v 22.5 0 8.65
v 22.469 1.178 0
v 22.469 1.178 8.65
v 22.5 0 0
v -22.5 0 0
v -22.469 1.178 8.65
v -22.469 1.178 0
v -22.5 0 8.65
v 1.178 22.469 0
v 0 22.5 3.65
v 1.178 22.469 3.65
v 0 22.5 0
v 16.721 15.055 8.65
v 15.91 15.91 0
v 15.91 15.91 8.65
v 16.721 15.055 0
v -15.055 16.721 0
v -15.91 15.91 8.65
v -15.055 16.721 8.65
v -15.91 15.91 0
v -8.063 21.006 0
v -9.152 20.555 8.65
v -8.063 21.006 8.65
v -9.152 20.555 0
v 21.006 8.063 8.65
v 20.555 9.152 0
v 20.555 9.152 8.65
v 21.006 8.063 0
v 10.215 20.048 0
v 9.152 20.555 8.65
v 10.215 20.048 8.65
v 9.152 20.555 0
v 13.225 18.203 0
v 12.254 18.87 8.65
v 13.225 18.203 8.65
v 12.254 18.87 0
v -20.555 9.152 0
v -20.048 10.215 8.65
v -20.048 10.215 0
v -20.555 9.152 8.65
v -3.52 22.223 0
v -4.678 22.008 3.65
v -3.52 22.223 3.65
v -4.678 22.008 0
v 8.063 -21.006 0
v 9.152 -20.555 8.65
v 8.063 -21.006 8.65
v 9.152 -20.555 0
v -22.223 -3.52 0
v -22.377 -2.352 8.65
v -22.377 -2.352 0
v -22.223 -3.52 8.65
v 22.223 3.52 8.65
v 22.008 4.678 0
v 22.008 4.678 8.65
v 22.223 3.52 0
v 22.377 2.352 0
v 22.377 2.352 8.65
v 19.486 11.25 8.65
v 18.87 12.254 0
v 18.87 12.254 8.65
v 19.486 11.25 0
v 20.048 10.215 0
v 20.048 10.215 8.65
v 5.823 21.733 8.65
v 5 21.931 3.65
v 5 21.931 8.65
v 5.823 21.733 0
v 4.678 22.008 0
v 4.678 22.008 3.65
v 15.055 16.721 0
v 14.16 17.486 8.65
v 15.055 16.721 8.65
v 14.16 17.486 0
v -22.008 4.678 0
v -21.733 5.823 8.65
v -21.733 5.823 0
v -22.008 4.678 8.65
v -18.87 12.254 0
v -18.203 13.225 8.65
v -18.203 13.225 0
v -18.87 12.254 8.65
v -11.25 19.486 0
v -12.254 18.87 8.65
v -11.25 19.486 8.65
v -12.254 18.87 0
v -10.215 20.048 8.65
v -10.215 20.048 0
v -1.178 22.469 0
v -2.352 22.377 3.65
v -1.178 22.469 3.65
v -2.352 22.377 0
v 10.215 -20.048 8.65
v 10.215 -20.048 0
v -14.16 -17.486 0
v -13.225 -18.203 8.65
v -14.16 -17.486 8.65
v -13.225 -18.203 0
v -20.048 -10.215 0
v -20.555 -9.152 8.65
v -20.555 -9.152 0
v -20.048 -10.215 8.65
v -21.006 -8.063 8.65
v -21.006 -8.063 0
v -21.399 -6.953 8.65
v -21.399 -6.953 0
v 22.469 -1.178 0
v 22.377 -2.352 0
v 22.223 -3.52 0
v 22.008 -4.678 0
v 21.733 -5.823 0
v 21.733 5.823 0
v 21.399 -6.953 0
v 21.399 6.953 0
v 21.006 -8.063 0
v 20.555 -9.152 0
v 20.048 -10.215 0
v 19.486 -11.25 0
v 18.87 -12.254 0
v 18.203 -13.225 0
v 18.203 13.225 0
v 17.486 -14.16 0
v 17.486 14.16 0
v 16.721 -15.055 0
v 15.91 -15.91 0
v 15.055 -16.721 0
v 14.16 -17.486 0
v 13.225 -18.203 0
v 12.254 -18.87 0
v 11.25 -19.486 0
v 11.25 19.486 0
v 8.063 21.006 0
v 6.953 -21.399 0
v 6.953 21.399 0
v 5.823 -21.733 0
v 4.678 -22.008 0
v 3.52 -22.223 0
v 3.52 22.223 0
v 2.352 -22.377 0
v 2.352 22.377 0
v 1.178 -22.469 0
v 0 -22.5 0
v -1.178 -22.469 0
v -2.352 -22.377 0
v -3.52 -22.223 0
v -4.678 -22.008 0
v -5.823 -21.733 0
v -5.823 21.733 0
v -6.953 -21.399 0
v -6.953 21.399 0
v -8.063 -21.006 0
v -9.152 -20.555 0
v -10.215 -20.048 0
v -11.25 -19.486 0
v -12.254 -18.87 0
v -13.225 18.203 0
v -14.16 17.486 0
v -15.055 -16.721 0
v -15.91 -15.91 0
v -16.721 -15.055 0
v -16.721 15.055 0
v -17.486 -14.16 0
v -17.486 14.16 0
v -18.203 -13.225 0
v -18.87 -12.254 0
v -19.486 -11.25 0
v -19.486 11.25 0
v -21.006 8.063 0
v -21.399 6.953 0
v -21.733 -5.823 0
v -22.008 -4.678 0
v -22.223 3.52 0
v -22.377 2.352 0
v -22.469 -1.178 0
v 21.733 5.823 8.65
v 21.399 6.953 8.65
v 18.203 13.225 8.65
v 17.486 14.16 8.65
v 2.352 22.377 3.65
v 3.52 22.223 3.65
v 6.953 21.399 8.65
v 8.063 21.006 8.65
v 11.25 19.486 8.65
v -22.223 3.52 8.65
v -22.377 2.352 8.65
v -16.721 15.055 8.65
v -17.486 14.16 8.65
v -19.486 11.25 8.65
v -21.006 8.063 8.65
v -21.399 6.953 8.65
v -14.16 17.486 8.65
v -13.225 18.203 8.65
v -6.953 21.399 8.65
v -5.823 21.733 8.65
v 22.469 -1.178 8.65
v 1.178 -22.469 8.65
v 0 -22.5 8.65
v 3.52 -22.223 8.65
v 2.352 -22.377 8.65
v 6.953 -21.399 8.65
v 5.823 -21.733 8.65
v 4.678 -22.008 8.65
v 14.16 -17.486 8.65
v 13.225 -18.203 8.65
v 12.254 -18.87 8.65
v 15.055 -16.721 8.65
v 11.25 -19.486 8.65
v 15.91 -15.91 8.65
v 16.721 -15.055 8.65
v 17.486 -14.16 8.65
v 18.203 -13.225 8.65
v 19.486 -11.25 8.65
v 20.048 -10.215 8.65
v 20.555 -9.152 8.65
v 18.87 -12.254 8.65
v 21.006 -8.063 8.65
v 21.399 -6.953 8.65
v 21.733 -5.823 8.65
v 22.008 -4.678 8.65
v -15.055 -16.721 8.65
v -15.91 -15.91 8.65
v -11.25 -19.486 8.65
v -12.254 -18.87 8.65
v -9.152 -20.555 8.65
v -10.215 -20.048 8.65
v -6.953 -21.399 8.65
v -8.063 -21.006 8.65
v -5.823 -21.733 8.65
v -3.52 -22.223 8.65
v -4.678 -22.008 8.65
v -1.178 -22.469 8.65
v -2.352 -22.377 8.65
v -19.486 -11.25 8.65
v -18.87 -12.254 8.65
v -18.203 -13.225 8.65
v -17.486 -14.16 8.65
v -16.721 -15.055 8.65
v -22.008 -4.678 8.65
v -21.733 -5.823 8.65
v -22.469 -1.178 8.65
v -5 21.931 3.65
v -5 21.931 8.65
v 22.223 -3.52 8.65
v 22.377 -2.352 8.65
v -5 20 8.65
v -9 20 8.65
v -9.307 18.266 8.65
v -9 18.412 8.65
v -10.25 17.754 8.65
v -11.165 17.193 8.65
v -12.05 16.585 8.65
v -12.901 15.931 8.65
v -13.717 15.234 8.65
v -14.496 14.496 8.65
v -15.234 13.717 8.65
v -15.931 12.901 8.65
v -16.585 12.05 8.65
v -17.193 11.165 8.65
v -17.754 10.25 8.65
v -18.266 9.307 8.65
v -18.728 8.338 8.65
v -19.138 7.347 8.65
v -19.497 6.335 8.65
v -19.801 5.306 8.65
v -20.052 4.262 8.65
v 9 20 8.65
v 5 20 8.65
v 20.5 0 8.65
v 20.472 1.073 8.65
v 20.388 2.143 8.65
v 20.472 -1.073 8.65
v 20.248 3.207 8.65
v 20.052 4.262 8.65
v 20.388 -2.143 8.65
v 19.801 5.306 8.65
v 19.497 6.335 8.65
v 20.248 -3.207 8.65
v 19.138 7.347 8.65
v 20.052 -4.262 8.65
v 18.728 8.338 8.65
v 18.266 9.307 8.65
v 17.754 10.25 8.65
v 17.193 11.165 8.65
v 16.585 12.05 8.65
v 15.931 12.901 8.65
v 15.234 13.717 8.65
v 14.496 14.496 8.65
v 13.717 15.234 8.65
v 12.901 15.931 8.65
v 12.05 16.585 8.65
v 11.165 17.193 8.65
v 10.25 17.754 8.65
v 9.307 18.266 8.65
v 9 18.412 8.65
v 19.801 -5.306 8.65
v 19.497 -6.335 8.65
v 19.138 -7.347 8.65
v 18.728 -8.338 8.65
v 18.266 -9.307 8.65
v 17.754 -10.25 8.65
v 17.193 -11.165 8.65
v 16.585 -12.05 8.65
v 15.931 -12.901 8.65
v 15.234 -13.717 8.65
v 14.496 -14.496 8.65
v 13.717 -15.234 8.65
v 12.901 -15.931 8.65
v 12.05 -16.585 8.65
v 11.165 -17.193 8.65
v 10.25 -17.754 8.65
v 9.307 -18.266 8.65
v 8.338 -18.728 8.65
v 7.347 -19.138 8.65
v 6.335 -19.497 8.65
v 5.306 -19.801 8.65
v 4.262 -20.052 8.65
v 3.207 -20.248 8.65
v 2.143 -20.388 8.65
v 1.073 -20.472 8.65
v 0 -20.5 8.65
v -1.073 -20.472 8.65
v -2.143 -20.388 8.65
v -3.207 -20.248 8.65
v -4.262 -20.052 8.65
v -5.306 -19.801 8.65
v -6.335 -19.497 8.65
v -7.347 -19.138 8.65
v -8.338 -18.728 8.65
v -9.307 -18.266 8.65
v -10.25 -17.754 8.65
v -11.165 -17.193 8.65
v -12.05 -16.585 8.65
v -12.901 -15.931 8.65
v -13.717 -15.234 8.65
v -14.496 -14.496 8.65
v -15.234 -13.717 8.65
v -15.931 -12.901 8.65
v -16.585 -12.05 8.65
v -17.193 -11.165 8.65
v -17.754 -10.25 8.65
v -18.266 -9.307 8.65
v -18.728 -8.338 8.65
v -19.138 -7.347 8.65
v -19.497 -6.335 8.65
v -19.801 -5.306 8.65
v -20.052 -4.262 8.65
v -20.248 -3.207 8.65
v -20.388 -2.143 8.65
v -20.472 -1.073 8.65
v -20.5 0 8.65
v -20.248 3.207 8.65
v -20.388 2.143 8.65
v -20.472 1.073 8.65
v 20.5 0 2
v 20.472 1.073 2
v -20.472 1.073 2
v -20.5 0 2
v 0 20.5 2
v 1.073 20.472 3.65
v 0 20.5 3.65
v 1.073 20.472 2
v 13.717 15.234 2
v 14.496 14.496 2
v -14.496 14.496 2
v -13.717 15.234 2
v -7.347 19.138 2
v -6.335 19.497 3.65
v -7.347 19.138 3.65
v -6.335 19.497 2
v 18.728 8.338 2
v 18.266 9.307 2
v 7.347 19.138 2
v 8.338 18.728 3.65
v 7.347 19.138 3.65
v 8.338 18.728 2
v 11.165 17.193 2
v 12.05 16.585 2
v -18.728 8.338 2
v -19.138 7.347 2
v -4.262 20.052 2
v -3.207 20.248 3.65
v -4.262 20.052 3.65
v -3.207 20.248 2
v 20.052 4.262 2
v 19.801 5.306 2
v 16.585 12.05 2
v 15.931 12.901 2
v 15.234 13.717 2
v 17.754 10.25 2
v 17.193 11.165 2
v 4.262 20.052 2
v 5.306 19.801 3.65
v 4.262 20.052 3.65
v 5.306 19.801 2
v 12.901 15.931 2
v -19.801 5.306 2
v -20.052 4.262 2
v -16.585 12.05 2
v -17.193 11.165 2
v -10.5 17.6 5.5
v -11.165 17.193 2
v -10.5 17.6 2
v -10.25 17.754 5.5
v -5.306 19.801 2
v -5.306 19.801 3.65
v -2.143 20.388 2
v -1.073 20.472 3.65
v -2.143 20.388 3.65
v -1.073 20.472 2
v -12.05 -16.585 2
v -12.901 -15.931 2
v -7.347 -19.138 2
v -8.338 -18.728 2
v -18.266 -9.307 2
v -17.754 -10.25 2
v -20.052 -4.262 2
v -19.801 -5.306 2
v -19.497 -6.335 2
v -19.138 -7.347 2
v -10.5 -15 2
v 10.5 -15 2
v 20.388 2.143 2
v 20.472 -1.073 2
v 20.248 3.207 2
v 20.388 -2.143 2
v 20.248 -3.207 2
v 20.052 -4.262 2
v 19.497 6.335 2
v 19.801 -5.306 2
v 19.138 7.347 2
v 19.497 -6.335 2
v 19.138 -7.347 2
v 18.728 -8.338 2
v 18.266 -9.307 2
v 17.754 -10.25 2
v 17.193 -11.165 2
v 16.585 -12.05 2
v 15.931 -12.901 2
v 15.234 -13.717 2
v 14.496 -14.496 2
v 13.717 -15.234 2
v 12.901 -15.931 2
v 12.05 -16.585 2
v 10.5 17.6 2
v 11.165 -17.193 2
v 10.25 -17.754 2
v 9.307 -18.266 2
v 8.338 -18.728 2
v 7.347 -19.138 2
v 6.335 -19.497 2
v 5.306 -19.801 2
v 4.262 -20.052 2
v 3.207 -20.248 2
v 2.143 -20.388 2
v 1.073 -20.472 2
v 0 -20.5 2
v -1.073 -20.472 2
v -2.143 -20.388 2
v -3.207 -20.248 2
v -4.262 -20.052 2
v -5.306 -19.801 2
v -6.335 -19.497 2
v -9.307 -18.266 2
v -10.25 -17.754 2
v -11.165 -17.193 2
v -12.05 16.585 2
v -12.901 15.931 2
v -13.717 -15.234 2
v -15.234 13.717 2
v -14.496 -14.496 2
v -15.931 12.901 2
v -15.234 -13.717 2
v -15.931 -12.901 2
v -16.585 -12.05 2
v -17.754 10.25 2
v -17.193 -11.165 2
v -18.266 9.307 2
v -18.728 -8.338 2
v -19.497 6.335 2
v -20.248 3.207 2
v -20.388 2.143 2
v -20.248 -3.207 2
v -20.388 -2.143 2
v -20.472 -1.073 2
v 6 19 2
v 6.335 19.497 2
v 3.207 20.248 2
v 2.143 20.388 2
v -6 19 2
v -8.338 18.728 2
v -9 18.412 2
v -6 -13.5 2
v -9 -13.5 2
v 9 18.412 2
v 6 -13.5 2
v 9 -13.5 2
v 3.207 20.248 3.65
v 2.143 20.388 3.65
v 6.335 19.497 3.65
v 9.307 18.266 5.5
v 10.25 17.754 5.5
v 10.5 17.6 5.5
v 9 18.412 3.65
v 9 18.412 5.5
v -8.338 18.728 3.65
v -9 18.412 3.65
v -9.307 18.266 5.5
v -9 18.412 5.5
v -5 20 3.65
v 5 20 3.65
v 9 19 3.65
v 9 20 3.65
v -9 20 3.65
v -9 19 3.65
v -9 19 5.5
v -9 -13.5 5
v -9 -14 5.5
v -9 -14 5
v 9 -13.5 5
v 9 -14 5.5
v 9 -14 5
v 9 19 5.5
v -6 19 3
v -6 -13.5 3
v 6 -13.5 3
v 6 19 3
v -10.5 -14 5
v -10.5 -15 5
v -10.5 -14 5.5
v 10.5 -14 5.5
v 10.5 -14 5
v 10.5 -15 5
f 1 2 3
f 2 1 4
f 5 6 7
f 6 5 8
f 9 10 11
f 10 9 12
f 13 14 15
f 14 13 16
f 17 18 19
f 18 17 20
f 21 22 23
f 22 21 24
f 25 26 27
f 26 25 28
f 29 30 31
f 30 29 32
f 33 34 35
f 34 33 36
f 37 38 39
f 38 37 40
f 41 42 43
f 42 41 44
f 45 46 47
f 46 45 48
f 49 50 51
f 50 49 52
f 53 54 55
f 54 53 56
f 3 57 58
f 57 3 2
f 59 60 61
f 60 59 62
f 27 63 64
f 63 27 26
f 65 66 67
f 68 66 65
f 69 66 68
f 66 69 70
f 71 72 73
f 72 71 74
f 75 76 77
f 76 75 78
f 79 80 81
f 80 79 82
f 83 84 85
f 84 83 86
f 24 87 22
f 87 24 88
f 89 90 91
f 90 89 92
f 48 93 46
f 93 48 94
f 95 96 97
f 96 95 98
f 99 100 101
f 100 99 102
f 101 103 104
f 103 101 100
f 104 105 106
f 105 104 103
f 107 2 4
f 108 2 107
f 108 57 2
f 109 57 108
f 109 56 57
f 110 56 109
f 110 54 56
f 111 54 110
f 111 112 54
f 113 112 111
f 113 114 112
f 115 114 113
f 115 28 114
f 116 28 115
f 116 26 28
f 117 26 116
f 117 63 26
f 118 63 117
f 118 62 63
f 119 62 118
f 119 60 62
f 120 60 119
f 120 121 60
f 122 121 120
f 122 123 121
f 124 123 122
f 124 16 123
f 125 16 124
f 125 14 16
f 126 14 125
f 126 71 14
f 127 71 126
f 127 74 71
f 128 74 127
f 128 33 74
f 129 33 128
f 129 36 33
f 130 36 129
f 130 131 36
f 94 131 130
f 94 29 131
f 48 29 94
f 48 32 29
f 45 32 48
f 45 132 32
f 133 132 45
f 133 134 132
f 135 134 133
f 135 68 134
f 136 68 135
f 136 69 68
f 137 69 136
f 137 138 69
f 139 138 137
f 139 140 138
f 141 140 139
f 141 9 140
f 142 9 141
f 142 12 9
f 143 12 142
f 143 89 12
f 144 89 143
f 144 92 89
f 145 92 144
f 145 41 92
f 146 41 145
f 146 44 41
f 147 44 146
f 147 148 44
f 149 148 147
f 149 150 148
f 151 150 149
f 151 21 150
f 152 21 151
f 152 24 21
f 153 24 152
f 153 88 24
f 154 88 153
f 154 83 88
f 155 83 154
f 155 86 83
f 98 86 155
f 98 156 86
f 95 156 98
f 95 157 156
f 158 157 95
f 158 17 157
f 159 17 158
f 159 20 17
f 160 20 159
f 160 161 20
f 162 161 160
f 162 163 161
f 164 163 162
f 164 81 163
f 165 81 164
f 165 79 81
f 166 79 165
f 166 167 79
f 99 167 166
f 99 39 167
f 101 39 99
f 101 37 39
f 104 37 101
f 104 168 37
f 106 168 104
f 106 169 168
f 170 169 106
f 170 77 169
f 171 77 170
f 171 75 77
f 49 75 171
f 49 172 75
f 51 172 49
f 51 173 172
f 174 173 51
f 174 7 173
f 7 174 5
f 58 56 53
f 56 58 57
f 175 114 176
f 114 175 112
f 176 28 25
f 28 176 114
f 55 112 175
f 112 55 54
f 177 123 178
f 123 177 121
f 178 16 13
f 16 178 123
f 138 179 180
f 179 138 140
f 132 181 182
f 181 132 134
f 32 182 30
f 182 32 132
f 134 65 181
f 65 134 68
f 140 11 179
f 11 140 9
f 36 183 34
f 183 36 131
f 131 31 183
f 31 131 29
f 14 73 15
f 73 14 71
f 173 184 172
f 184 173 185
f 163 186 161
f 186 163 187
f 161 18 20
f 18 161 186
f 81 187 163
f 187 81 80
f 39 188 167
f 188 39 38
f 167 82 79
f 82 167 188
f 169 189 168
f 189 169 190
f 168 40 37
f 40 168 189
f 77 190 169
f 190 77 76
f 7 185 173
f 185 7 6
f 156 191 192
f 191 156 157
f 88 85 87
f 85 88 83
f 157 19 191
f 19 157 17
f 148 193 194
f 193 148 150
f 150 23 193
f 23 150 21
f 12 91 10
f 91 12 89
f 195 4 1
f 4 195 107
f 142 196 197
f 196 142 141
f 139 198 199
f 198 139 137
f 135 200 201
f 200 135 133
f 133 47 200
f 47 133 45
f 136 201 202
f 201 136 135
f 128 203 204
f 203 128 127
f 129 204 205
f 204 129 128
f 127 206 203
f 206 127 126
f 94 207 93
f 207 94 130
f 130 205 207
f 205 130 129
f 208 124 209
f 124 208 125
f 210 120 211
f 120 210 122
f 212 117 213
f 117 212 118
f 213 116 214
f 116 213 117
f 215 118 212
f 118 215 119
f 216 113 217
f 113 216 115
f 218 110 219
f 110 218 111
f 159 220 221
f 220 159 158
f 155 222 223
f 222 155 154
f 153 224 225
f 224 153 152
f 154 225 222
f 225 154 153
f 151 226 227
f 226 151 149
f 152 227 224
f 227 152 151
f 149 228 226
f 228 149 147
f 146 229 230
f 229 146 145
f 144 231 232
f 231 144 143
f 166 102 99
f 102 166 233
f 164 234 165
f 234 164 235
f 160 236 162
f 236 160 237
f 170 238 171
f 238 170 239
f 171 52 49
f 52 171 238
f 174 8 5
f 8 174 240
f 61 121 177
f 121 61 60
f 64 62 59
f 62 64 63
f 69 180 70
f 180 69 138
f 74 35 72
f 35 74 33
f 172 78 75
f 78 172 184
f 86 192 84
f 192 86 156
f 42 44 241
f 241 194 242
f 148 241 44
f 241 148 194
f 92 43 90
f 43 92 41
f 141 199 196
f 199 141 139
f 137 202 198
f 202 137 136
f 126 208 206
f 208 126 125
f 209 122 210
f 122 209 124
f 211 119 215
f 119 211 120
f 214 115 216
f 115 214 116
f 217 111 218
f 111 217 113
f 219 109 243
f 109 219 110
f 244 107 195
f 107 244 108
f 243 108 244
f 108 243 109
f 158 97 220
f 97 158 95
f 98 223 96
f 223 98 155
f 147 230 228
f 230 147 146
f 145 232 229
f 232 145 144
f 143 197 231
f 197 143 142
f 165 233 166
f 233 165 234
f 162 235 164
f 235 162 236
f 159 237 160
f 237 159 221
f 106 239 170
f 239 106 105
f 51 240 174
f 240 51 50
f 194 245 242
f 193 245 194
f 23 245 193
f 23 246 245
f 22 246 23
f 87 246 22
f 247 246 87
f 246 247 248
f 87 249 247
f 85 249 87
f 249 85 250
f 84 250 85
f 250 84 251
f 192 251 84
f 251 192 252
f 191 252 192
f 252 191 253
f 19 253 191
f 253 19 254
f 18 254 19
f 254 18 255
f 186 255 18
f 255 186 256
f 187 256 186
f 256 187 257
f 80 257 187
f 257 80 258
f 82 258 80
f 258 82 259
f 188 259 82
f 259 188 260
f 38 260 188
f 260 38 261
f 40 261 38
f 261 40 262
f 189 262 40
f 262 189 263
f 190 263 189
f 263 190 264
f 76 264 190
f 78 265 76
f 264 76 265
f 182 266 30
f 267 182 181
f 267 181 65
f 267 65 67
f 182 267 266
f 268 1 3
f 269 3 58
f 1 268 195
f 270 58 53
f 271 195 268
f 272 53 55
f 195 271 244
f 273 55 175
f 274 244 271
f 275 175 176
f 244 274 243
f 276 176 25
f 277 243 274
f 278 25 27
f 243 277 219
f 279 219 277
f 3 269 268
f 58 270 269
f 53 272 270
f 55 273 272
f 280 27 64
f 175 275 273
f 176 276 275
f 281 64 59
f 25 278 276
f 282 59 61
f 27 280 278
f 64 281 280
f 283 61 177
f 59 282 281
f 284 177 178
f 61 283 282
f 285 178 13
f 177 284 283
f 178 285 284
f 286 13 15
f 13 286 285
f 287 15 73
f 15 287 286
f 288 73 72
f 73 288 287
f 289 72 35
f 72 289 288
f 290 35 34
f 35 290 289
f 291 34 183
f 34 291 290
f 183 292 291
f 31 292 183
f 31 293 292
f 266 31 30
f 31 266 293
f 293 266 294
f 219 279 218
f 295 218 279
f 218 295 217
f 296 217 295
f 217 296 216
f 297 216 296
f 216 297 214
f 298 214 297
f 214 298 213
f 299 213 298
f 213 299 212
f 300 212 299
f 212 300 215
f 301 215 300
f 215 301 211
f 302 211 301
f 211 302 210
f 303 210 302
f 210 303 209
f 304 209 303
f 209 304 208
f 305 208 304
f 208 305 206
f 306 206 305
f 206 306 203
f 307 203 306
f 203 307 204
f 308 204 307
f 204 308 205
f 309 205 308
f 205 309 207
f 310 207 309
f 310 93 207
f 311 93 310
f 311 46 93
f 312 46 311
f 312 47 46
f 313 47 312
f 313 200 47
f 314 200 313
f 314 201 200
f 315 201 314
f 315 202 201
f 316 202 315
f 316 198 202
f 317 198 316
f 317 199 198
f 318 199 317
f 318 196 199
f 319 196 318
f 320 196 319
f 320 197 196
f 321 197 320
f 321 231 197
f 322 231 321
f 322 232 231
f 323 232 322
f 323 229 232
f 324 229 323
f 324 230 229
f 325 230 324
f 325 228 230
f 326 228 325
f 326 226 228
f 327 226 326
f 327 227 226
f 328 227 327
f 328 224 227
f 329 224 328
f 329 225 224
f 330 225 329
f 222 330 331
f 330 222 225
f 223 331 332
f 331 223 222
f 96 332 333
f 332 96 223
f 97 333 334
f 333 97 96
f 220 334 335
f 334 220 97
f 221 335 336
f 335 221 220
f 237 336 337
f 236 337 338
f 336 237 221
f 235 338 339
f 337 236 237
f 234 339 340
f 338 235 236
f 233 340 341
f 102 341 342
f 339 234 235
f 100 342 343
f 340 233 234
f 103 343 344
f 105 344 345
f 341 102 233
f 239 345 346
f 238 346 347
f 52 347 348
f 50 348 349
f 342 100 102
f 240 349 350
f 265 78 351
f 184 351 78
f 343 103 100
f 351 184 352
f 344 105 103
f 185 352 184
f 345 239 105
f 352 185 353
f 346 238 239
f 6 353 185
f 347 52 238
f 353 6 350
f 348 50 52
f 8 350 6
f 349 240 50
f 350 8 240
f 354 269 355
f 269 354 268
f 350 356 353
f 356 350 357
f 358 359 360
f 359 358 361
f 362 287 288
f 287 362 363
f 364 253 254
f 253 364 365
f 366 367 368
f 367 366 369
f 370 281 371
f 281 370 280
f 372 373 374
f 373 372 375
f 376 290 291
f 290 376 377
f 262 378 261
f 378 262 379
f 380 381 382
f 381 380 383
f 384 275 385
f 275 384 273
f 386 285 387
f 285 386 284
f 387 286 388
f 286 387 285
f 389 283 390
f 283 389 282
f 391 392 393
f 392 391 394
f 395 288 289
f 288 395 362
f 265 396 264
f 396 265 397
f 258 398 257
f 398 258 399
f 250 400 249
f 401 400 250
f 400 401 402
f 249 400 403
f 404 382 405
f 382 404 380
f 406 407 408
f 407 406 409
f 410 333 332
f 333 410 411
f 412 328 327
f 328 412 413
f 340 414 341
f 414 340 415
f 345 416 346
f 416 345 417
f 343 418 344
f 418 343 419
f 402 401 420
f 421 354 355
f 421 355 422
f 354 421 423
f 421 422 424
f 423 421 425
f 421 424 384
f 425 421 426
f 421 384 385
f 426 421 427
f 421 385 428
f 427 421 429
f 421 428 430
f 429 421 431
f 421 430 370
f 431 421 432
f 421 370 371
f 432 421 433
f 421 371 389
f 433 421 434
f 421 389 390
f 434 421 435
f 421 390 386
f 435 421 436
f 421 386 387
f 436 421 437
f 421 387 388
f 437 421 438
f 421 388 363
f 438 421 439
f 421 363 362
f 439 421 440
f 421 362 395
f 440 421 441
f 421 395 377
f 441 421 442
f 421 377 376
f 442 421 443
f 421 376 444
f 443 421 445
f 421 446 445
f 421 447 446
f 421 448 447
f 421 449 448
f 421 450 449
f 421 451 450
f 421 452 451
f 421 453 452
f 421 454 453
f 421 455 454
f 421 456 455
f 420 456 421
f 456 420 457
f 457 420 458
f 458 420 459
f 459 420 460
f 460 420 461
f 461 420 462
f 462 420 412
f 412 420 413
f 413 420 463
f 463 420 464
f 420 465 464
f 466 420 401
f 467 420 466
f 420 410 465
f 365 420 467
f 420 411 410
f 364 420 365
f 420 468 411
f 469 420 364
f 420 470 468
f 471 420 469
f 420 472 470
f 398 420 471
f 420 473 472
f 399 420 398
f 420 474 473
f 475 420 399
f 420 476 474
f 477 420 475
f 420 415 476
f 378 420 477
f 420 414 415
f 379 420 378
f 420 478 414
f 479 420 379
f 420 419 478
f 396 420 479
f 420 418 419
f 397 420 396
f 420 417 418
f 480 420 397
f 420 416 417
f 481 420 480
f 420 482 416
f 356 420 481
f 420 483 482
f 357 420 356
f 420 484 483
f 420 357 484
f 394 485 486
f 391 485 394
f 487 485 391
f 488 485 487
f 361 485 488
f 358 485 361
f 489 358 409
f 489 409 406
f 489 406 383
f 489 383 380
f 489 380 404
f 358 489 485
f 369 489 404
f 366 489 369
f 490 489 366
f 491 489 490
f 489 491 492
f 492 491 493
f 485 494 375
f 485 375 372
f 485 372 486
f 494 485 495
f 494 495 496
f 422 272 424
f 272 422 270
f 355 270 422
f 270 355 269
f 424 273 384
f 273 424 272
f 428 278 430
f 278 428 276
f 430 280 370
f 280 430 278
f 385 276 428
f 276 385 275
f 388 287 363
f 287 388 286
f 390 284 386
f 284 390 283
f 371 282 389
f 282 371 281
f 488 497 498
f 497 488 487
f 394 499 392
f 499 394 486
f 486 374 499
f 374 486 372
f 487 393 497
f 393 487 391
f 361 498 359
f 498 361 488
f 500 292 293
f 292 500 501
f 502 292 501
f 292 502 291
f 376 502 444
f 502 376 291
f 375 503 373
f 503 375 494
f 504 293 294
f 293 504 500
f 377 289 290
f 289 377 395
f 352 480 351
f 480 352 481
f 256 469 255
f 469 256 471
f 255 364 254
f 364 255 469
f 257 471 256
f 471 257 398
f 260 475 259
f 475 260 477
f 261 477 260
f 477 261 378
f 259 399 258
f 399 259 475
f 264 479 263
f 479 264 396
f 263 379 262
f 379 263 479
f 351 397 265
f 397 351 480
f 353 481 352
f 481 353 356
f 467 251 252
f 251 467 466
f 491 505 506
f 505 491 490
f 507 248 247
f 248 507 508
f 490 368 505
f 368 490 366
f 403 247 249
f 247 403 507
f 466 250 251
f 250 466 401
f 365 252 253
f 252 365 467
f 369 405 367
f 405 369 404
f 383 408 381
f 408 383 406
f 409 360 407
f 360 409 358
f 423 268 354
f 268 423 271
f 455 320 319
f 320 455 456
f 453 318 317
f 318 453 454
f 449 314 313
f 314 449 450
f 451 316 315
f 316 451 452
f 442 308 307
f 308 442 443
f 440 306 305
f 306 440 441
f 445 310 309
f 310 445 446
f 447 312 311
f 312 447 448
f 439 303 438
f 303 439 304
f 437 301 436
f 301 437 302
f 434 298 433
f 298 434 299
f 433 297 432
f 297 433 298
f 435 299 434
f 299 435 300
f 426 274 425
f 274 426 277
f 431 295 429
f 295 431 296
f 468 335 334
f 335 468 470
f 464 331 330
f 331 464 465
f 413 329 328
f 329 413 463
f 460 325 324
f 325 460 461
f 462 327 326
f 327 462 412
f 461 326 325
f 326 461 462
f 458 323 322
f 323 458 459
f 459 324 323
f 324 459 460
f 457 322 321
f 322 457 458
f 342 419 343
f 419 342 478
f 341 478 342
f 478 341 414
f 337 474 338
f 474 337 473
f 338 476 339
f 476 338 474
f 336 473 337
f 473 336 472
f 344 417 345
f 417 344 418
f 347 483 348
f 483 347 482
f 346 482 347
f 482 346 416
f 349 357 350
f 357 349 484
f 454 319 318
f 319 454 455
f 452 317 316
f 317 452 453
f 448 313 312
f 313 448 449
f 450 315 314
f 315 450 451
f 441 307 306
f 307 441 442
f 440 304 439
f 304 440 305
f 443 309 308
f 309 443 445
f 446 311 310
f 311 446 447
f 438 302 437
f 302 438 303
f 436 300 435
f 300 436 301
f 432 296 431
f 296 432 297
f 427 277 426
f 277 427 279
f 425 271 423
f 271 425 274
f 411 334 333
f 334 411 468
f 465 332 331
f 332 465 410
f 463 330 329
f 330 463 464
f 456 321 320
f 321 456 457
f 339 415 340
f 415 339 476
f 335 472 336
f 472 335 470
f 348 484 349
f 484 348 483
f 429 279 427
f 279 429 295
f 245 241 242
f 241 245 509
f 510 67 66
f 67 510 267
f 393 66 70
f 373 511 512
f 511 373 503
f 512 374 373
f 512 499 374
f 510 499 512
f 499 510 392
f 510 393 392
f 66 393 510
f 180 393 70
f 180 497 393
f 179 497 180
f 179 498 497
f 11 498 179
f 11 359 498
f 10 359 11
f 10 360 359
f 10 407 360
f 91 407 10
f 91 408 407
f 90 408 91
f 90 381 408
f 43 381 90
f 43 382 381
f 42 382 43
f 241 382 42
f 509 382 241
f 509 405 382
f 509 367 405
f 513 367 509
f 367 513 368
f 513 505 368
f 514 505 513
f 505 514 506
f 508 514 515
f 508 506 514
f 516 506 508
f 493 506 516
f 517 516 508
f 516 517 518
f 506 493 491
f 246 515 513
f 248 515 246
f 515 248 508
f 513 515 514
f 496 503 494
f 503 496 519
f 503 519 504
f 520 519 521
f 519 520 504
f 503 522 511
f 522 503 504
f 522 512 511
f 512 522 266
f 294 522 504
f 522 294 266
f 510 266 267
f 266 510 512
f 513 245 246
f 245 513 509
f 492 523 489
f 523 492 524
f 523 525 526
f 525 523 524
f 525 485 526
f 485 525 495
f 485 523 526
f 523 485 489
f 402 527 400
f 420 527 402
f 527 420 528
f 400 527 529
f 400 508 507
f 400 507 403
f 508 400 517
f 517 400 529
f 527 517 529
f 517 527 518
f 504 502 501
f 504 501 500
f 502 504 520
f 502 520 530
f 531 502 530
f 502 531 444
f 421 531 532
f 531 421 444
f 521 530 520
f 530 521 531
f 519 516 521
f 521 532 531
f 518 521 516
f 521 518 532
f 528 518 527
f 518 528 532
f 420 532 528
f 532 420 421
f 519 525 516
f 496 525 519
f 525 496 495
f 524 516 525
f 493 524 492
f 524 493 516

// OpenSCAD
include <BOSL/constants.scad>
use <BOSL/shapes.scad>
use <BOSL/transforms.scad>
use <BOSL/masks.scad>

fileVersion = "1D";
  
$fn=120; //circle smoothness

main();
KB2040();

module main(){
  difference(){
    color("lime") cylinder(h=8.65, d=45); // main disc object
    color("green") up(2) cylinder(h=10, d=41); // inside cutout
    color("peru") translate([-(10/2), 15, 2.0+1.65]) cube([10,8,4.0+1]); // USB port
    color("orange") translate([-9, 15, 3.65]) cube([18, 5, 10]); // extra board cutout

  }
}  

module KB2040() {
    color("teal") translate([-(12/2), -14, 1]) cube([12,33,2]); //riser
    color("royalblue") translate([-10.5, -14, 1]) cube([1.5, 33, 4.5]); //side bumpers
    color("royalblue") translate([+9, -14, 1]) cube([1.5, 33, 4.5]); //side bumpers
    color("purple") translate([-10.5, -15, 1]) cube([21, 1.5, 4]); // end bumper
    
}
